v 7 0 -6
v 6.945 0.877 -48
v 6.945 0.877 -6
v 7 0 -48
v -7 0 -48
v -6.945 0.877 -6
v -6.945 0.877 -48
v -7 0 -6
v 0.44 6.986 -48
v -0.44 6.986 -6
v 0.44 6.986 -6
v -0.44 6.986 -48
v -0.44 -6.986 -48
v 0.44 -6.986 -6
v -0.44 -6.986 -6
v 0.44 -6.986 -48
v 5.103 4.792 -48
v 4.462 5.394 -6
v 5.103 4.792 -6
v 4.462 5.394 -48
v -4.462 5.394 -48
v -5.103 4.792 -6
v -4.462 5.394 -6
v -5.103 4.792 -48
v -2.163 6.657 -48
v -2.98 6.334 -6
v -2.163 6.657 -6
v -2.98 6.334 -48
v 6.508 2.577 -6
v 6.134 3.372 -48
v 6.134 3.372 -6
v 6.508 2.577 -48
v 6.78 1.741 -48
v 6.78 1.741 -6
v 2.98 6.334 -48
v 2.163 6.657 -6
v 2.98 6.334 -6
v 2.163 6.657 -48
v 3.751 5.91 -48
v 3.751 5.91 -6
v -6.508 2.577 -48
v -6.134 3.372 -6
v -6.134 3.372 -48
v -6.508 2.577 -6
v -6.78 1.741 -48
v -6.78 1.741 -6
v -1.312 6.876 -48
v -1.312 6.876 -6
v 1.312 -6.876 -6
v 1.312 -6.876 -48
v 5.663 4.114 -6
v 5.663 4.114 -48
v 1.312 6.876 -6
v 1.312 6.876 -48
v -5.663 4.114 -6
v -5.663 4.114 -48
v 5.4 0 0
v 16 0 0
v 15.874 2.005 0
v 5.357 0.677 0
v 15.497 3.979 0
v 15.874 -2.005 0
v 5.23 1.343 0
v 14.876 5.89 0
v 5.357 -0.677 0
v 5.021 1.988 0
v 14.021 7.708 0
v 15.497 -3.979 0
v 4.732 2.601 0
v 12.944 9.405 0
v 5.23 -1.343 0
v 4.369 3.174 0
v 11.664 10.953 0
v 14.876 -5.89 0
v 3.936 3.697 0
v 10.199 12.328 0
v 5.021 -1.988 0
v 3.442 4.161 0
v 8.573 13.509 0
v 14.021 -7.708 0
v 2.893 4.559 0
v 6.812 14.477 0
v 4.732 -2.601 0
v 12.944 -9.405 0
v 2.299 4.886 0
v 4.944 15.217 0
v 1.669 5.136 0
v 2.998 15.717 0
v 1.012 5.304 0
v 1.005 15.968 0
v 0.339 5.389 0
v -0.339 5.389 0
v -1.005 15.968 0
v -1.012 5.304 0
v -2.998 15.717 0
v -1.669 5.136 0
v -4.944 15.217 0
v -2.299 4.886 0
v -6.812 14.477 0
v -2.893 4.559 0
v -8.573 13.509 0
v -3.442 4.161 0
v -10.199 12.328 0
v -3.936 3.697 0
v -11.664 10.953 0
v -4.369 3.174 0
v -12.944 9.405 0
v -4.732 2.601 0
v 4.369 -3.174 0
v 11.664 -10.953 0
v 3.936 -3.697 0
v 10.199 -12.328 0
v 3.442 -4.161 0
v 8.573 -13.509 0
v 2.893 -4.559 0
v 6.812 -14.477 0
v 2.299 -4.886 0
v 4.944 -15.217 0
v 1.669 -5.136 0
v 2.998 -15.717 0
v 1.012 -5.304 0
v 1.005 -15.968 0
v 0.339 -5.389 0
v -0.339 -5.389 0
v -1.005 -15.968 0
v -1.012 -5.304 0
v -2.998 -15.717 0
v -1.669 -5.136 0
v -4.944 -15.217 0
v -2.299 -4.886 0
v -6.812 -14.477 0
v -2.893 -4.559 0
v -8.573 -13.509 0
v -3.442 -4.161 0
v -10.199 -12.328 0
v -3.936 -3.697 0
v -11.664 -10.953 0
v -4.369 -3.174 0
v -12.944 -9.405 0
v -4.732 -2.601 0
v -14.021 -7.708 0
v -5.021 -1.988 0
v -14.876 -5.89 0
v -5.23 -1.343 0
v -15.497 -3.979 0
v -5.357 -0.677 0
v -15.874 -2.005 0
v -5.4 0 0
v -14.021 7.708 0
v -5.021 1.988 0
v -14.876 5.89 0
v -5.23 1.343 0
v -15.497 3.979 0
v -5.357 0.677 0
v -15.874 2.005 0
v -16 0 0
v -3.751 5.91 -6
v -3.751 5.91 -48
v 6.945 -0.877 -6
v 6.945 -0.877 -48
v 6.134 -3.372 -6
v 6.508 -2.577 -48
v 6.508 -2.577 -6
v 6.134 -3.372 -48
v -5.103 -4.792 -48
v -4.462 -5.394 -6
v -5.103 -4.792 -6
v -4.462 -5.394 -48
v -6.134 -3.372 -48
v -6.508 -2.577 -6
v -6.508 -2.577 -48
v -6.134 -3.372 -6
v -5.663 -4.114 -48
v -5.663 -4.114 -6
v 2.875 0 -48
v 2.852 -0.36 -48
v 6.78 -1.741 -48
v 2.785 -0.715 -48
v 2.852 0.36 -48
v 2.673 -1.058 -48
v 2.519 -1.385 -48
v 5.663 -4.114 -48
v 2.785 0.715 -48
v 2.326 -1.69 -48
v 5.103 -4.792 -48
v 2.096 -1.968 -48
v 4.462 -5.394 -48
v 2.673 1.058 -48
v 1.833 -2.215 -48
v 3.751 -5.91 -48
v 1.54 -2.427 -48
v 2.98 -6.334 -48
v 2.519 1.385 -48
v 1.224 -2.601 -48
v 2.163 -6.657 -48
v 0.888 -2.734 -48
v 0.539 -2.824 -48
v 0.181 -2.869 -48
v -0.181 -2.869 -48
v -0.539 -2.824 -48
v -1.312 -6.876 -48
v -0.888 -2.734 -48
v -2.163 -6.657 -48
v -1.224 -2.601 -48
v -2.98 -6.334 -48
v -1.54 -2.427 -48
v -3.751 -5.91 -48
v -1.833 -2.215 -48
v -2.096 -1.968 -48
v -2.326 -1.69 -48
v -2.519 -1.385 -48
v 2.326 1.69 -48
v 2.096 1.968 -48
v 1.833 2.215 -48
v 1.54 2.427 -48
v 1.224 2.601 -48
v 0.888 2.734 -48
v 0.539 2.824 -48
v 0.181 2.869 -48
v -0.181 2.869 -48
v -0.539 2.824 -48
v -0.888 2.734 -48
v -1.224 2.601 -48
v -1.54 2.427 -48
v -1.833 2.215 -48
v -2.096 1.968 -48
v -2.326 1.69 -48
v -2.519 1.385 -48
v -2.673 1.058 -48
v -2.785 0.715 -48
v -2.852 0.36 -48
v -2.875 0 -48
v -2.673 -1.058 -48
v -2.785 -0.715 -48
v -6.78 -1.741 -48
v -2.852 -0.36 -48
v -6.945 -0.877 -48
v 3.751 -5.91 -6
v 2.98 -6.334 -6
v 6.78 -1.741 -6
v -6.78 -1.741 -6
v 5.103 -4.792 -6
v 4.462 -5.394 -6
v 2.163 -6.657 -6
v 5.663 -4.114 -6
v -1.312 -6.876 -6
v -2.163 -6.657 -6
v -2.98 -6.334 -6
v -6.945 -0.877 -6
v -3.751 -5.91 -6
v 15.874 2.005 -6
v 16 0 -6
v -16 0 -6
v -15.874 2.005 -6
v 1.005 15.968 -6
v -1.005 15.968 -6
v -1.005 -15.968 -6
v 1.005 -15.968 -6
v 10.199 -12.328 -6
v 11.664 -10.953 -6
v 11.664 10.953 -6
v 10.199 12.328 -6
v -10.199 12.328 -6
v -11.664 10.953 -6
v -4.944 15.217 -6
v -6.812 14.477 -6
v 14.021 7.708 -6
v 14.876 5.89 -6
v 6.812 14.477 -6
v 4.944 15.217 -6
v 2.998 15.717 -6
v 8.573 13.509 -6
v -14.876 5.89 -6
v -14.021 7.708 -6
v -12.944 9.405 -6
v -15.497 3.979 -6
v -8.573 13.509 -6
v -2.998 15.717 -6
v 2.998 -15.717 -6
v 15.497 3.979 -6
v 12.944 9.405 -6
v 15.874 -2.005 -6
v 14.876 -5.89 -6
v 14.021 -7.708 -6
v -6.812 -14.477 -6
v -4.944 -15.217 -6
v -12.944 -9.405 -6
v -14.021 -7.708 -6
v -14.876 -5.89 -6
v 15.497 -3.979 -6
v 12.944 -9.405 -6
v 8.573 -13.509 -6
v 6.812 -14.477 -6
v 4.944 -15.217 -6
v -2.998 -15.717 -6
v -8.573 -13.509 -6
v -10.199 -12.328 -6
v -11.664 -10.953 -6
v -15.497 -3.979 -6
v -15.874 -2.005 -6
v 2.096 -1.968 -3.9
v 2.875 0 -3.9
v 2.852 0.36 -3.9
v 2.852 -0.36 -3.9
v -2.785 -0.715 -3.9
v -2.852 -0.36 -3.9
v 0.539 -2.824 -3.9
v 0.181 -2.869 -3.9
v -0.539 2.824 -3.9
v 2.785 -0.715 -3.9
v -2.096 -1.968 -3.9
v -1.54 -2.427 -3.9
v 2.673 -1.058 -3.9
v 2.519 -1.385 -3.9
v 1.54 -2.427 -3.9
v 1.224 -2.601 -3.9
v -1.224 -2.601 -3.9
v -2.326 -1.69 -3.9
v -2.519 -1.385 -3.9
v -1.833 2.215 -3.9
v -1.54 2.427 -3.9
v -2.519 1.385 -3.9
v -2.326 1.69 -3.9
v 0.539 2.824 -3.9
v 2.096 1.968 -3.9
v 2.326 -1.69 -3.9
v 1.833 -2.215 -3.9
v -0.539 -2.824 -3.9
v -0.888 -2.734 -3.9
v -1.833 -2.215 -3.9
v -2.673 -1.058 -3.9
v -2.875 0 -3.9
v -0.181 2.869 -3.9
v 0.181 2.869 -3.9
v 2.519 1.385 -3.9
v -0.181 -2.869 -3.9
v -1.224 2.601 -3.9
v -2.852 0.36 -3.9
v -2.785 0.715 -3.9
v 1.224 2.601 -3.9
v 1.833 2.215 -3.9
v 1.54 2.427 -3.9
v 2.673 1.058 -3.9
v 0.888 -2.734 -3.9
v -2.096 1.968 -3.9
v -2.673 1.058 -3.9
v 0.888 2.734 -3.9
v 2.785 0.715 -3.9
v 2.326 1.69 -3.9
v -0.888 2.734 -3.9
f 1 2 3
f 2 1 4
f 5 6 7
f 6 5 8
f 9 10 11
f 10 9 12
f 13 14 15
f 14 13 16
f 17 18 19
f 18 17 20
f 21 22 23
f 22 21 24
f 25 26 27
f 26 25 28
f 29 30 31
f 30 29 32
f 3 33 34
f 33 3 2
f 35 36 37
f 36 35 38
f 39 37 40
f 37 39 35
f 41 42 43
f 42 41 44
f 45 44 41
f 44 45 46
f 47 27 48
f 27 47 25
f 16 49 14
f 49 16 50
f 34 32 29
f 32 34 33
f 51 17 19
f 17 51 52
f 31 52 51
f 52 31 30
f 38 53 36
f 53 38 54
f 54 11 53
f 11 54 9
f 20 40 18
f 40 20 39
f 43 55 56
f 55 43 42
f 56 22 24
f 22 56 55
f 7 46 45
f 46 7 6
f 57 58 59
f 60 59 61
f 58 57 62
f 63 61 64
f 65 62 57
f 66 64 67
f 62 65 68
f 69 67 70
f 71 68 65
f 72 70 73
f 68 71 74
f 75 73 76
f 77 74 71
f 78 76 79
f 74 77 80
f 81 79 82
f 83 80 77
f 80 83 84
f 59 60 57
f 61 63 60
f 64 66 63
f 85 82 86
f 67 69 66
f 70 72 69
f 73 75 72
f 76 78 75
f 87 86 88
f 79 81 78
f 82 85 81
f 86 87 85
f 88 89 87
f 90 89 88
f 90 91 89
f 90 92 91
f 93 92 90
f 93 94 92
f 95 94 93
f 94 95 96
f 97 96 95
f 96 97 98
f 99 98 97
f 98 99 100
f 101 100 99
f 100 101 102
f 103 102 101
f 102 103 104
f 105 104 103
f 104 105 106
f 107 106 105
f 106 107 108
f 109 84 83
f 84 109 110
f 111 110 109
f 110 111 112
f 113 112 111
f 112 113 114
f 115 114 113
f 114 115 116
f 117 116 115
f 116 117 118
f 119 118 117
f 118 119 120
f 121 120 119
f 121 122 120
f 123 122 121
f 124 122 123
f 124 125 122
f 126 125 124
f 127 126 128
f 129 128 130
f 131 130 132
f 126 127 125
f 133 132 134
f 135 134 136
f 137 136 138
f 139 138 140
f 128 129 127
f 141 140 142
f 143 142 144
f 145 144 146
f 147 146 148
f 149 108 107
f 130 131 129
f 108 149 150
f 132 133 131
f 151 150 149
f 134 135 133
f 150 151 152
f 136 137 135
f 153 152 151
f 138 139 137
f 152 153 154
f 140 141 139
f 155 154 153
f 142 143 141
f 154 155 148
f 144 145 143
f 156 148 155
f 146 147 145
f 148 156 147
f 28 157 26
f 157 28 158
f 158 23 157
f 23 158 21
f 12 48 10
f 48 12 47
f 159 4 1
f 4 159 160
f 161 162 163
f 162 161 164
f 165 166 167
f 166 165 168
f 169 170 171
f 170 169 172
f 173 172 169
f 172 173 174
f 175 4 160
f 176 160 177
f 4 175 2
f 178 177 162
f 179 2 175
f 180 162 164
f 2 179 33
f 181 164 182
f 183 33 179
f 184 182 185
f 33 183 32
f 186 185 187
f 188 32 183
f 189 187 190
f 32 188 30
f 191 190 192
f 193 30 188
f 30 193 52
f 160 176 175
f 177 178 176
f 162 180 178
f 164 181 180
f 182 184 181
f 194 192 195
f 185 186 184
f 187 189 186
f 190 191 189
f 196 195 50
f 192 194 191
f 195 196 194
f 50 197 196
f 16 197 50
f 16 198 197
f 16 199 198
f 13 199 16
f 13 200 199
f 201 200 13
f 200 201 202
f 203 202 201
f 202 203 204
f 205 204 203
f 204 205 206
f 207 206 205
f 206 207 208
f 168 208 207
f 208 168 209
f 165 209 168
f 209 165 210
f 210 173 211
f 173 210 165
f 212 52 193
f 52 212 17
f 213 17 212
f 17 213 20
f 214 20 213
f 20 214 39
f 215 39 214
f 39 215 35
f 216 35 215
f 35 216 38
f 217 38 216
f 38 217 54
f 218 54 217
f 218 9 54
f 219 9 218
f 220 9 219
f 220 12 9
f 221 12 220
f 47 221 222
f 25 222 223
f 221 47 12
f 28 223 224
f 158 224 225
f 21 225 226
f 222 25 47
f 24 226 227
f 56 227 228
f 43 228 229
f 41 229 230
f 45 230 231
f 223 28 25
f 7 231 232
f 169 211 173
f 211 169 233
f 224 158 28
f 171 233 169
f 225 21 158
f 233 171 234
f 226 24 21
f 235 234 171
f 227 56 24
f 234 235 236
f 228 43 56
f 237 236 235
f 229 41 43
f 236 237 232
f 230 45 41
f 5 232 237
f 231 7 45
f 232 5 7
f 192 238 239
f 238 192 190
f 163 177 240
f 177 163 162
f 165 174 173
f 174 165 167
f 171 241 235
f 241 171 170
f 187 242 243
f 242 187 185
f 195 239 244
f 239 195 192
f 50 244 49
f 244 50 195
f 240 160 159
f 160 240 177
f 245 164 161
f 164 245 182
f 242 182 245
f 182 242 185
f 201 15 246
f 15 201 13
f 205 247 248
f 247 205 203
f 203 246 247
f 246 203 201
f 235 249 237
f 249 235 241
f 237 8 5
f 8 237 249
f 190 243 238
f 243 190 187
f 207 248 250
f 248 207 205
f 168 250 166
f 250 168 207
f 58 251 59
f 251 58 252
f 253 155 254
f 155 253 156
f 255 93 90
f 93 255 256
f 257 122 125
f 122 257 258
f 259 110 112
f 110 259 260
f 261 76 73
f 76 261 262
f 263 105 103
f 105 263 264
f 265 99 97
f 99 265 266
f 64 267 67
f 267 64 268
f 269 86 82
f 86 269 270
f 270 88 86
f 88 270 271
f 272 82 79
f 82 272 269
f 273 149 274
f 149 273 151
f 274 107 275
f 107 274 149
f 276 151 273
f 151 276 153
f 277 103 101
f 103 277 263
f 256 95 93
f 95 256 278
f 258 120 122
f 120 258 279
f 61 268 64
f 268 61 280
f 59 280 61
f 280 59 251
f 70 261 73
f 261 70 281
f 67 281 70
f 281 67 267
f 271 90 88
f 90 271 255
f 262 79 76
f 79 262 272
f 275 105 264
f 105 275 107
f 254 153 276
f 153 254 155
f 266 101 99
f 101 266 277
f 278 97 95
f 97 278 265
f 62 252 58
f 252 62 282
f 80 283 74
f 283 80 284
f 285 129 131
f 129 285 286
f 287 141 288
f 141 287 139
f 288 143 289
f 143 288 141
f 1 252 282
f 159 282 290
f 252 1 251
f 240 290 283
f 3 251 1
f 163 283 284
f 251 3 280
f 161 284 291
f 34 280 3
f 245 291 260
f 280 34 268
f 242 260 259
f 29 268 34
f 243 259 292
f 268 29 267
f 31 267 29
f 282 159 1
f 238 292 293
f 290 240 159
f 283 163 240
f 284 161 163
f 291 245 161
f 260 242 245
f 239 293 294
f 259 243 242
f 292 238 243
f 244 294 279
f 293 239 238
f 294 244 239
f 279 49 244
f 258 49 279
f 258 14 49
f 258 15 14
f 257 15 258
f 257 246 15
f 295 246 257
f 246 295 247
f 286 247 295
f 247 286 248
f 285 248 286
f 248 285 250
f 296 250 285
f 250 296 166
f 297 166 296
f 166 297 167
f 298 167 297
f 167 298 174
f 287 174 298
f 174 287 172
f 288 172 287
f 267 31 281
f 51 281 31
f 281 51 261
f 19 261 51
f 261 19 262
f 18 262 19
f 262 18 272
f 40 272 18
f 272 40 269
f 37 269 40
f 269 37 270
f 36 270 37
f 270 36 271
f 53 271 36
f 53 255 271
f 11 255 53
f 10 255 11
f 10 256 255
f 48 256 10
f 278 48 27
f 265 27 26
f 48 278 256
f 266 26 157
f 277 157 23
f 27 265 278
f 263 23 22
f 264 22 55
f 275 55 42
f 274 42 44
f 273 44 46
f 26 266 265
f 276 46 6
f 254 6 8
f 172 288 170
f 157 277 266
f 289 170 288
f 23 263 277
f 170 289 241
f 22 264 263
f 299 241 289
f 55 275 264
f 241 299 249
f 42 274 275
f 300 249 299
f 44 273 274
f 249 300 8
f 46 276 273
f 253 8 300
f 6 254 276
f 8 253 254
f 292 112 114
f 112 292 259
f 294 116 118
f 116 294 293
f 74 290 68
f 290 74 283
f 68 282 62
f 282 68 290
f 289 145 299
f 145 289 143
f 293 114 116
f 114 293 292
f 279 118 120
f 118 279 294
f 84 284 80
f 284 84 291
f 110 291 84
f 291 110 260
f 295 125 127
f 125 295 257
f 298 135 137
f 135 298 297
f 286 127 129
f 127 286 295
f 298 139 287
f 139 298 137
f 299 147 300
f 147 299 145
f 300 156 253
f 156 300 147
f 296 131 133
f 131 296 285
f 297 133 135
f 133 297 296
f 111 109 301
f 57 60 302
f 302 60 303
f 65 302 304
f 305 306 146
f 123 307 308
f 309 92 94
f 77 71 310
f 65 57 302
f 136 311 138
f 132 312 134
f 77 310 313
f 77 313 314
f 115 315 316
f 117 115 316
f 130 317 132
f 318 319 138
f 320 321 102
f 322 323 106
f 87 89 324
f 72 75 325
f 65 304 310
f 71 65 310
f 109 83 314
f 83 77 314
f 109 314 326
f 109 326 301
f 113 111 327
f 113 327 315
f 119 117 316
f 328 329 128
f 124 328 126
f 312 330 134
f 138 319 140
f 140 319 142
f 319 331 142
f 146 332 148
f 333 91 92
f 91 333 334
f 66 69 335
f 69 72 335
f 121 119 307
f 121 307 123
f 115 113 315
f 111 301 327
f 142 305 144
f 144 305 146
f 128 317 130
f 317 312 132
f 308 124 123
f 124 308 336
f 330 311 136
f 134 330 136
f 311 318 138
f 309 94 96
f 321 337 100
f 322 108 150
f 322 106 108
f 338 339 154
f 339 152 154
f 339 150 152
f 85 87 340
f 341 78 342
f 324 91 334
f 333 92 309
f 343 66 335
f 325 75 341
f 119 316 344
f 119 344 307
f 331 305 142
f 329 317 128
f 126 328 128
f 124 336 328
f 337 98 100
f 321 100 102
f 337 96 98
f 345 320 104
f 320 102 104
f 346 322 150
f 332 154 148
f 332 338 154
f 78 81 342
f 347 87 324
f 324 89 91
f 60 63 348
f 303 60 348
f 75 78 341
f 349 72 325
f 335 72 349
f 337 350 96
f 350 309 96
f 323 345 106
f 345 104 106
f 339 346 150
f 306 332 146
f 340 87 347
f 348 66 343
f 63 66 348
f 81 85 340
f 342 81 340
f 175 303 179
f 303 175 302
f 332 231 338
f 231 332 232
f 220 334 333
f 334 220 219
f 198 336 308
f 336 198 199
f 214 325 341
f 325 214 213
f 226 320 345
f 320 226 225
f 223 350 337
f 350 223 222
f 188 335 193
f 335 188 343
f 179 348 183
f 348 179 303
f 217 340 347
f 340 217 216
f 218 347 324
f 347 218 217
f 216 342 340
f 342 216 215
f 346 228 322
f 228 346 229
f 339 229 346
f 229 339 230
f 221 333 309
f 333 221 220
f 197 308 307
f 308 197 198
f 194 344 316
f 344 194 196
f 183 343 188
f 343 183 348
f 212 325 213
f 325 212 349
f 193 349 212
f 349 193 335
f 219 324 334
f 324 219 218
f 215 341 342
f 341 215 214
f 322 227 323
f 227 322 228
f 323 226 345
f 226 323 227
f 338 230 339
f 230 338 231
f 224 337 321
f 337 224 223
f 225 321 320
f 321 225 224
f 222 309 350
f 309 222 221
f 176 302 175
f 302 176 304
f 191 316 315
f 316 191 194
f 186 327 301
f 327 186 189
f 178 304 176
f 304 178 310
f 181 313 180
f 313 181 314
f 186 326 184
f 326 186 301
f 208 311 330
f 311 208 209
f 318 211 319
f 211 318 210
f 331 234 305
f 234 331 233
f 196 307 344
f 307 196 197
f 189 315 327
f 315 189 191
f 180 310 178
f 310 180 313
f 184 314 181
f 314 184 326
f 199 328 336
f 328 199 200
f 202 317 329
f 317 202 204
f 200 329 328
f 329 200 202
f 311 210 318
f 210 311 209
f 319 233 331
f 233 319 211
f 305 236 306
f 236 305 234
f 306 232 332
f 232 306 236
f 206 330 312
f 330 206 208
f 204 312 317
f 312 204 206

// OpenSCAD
$fn = 50;


difference() {
	union() {
		translate(v = [0, 0, -48.0000000000]) {
			cylinder(h = 48, r = 7.0000000000);
		}
		translate(v = [0, 0, -6.0000000000]) {
			cylinder(h = 6, r = 16.0000000000);
		}
	}
	union() {
		translate(v = [0, 0, 0]) {
			rotate(a = [0, 0, 0]) {
				difference() {
					union() {
						#translate(v = [0, 0, -48.0000000000]) {
							cylinder(h = 48, r = 2.6000000000);
						}
						#translate(v = [0, 0, -3.9000000000]) {
							cylinder(h = 3.9000000000, r1 = 2.8750000000, r2 = 5.4000000000);
						}
						#translate(v = [0, 0, -48.0000000000]) {
							cylinder(h = 48, r = 2.8750000000);
						}
						#translate(v = [0, 0, -48.0000000000]) {
							cylinder(h = 48, r = 2.6000000000);
						}
					}
					union();
				}
			}
		}
	}
}
